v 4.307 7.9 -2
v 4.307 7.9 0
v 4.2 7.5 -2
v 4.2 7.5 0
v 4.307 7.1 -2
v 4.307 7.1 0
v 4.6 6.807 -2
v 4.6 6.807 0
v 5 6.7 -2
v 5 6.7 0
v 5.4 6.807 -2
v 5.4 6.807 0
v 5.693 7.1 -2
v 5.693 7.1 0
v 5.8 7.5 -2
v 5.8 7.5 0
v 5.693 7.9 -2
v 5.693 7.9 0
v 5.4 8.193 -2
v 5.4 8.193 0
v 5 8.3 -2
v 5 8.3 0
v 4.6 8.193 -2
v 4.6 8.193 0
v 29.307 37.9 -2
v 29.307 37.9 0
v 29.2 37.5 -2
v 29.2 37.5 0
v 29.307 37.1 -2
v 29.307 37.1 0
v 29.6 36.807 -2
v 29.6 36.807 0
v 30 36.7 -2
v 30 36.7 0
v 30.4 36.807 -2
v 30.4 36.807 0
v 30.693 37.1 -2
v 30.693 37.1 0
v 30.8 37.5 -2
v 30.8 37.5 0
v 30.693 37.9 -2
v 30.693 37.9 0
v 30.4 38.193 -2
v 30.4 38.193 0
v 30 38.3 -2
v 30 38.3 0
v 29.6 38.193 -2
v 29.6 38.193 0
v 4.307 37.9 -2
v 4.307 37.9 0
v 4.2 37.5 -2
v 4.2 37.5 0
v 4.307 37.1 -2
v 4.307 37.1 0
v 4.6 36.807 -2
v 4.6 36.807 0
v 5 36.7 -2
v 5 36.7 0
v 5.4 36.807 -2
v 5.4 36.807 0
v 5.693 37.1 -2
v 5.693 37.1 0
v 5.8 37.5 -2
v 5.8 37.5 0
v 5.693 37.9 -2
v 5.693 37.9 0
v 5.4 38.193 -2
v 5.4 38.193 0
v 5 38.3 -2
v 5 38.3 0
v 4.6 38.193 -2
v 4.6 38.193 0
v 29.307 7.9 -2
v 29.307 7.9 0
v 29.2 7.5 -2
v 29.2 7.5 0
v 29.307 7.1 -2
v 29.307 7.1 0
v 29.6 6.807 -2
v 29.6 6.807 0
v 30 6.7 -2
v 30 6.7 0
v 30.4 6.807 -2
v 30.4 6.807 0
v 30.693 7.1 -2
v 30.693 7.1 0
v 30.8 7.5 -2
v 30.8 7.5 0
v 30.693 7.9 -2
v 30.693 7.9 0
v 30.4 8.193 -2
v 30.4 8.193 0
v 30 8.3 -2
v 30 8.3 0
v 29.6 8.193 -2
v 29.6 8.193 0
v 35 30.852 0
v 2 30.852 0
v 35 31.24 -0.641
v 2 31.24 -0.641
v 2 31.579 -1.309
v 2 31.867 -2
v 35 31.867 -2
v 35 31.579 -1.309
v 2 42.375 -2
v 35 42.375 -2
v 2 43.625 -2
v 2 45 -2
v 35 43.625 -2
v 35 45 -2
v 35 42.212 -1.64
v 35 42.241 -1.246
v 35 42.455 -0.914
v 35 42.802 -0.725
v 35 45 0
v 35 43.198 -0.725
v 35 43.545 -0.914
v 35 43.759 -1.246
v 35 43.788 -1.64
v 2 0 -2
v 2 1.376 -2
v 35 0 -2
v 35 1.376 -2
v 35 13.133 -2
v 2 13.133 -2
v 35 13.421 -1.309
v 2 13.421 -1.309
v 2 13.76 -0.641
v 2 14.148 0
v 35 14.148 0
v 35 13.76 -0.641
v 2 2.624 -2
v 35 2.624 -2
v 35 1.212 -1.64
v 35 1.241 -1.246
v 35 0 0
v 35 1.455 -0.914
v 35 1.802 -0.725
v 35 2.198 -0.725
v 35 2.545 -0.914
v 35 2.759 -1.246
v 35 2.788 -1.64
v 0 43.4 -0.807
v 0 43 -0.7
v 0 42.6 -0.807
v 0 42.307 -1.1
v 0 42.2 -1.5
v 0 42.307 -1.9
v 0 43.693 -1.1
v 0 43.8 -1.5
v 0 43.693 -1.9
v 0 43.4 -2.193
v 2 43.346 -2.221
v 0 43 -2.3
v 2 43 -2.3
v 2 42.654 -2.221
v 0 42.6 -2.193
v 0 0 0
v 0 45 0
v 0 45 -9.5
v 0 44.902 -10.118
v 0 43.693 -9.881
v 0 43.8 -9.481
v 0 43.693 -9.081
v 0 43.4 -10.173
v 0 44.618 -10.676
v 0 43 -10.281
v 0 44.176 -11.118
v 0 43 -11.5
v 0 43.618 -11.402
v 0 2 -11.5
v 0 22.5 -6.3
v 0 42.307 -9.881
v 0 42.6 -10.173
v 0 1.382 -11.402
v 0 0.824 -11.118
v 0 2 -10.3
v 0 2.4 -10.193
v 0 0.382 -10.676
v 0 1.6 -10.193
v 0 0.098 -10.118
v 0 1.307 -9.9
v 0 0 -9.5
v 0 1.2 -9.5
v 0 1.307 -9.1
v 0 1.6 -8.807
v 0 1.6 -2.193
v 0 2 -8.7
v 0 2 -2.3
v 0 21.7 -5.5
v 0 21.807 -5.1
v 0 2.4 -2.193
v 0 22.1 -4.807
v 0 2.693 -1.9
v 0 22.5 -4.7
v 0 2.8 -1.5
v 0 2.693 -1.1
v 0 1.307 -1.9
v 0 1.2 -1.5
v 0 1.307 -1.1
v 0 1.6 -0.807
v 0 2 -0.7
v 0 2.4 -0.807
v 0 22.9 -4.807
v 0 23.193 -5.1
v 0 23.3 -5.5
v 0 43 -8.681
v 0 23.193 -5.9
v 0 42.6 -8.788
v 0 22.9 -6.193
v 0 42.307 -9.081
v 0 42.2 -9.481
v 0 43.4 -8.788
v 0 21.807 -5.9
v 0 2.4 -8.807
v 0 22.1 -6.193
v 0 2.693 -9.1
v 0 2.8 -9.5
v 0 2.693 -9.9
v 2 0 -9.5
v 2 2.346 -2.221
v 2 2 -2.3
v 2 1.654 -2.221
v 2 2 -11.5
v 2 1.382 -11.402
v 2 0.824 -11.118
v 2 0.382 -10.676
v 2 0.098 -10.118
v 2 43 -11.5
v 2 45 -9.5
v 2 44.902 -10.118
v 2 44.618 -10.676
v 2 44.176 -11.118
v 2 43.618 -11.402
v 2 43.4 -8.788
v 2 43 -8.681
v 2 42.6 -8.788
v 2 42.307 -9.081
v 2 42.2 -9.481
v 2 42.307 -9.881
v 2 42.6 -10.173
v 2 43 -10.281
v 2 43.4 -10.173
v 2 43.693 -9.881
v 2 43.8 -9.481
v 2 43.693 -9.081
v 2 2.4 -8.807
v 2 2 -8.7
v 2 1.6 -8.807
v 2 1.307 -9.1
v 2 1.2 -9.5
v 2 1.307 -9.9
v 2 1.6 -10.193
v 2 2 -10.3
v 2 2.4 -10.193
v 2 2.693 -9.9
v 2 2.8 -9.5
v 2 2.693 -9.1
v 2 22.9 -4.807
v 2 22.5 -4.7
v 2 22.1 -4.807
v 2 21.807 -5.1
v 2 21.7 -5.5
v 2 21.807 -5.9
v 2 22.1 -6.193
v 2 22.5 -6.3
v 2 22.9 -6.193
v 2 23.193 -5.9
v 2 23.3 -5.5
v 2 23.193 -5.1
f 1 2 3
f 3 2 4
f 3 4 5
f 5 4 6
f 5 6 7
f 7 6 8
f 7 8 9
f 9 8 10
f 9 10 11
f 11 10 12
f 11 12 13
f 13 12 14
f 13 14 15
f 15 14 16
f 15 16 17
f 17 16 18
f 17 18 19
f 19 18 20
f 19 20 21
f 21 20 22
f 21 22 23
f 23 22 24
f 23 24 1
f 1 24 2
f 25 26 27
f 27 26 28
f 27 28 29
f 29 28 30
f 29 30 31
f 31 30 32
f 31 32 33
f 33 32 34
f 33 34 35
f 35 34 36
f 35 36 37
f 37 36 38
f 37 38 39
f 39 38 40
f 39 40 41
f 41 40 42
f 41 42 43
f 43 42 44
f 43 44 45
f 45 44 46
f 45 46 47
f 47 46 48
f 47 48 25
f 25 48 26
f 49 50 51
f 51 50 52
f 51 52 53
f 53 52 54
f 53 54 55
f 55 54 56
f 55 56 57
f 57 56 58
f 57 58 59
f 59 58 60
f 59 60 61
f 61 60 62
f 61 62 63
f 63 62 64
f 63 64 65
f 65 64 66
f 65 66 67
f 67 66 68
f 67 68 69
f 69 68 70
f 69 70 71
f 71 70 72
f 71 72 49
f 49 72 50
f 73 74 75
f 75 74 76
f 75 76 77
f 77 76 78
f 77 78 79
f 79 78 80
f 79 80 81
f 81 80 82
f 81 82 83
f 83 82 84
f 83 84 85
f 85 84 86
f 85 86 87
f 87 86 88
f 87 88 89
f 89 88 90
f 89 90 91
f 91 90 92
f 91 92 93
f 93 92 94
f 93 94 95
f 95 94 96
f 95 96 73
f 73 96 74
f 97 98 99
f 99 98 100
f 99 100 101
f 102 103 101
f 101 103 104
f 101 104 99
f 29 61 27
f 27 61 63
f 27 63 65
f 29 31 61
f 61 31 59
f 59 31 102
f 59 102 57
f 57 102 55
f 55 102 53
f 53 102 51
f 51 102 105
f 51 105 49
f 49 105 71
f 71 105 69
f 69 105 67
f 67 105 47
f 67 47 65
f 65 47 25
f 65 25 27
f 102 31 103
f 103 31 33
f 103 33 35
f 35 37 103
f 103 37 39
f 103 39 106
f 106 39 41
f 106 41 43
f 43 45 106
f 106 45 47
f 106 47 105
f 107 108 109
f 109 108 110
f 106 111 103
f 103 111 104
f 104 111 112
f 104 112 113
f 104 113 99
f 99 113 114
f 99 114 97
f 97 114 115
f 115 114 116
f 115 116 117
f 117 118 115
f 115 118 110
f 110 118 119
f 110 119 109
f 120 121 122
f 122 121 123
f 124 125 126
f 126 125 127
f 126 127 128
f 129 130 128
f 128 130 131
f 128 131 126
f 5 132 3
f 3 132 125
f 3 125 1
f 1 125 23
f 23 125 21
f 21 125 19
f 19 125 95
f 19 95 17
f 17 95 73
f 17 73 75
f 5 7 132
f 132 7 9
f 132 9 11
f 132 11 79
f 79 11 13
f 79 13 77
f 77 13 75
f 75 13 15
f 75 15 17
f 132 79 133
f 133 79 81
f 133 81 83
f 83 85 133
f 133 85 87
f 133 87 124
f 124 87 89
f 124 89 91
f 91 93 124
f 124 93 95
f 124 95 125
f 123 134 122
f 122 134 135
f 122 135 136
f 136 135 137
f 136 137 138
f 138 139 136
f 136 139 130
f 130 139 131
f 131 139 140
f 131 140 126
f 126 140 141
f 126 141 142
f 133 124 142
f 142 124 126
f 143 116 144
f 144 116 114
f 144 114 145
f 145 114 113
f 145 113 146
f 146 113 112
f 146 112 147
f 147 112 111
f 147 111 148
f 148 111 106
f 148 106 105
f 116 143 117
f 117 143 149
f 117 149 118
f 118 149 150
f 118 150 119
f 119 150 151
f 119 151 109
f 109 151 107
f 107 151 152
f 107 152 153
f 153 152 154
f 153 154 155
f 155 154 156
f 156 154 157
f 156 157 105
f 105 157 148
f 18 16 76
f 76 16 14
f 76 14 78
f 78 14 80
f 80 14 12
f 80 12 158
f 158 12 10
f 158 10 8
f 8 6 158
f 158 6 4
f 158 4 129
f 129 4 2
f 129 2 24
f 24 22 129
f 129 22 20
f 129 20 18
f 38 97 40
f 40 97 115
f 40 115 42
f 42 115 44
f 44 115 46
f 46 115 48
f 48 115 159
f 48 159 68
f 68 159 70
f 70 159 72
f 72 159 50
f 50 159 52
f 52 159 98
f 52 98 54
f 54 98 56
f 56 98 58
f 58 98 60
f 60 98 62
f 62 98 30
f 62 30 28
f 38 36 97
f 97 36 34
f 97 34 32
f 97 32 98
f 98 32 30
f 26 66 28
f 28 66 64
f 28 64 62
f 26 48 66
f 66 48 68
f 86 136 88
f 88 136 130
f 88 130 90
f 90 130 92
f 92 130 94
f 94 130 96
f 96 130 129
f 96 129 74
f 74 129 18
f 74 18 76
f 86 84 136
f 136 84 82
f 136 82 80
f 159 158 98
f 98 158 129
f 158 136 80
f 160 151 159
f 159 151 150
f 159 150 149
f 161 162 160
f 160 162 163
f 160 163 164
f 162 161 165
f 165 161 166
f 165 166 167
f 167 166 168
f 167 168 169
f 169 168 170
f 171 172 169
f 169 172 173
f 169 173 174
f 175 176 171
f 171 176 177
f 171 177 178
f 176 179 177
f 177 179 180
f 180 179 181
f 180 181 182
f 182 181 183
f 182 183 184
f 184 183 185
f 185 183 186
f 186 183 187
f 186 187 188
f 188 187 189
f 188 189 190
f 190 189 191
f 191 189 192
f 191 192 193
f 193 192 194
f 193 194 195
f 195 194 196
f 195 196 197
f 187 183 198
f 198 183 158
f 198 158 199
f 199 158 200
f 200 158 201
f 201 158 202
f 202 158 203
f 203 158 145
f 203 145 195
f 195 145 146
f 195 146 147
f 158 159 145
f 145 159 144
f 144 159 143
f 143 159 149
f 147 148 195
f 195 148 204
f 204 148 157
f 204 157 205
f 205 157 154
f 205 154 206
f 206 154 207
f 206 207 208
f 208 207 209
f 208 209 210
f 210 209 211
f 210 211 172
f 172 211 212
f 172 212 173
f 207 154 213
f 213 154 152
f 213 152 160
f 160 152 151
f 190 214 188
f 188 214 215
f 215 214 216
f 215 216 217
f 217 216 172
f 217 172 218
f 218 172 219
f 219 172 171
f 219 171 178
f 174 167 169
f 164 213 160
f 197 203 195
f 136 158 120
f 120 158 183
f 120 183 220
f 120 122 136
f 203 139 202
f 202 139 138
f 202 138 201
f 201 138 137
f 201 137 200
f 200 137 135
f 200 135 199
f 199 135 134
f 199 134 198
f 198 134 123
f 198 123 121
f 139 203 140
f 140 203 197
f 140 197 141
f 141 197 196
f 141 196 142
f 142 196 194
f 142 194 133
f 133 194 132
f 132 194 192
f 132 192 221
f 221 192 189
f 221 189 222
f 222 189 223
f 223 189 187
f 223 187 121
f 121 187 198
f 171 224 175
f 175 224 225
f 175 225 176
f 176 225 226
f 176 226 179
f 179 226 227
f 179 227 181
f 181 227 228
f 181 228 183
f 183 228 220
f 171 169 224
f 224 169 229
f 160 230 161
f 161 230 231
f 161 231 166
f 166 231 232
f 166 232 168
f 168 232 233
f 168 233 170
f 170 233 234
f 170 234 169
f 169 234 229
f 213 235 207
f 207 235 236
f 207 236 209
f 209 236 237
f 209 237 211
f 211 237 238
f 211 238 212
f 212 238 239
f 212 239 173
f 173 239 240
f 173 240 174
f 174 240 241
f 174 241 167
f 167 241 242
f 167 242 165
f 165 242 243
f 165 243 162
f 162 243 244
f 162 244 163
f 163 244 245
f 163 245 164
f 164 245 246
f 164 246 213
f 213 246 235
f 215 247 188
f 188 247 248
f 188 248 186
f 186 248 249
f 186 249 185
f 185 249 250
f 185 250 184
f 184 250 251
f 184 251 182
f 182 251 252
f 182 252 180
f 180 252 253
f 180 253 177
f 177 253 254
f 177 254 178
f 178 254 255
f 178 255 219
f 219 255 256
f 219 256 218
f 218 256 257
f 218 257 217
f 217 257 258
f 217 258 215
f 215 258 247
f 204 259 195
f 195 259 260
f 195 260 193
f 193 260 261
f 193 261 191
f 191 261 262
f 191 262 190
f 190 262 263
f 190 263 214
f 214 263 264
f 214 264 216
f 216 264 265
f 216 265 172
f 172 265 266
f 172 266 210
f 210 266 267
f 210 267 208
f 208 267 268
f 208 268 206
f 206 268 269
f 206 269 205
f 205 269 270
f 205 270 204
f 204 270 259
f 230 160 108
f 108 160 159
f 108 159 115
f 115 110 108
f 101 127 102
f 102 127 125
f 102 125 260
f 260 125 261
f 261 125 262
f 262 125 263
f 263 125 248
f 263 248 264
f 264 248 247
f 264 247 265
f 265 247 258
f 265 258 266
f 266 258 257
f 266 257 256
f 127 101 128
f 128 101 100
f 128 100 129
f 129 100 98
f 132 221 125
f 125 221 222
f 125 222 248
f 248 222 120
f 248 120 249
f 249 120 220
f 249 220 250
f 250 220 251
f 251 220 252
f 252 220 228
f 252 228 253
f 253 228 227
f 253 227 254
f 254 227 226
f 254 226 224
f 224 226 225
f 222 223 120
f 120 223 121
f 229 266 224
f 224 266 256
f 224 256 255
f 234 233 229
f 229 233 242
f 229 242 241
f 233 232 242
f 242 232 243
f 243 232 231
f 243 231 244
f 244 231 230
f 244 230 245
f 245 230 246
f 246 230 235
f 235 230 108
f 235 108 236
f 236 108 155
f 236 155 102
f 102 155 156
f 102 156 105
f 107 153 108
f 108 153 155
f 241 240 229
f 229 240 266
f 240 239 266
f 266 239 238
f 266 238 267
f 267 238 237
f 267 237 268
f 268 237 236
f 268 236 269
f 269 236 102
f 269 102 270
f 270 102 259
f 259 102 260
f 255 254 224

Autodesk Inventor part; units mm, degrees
ref_plane "YZ Plane" through (0, 0, 0) normal (1, 0, 0) x (0, 1, 0)
ref_plane "XZ Plane" through (0, 0, 0) normal (0, 1, 0) x (-1, 0, 0)
ref_plane "XY Plane" through (0, 0, 0) normal (0, 0, 1) x (1, 0, 0)
sketch "スケッチ1" plane through (0, 0, 0) normal (1, 0, 0) x (0, 1, 0)
  line L0 (45, 0) -> (0, 0)
  line L1 (0, 0) -> (0, -11.5)
  line L2 (0, -11.5) -> (45, -11.5)
  line L3 (45, -11.5) -> (45, 0)
  dimension "d0" = 45
  dimension "d1" = 11.5
extrude "押し出し1" add sketch "スケッチ1" along normal blind 2
sketch "スケッチ2" plane through (2, 0, 0) normal (1, 0, 0) x (0, 0, -1)
  circle A0 centre (1.5, 43) radius 0.8 projected
  circle A1 centre (9.4807, 43) radius 0.8 projected
  circle A2 centre (9.5, 2) radius 0.8 projected
  circle A3 centre (1.5, 2) radius 0.8 projected
  circle A4 centre (5.5, 22.5) radius 0.8 projected
  point P0 (0, 0)
extrude "押し出し2" cut sketch "スケッチ2" against normal through all
fillet "フィレット1" radius 2 2 edges at (1, 45, -11.5) (1, 0, -11.5)
sketch "スケッチ3" plane through (0, 0, 0) normal (-1, 0, 0) x (0, 0, 1)
  circle A0 centre (-5.5, 22.5) radius 0.8 projected
  circle A1 centre (-5.5, 22.5) radius 10
  line L0 (-2, 45) -> (0, 45)
  line L1 (0, 45) -> (0, 0)
  line L2 (0, 0) -> (-2, 0)
  line L3 (-2, 0) -> (-2, 45)
  line L4 (-9.5, 45) -> (0, 45) projected
  line L5 (0, 0) -> (-9.5, 0) projected
  circle A2 centre (-5.5, 22.5) radius 0.8 projected
  arc A3 (-11.5, 2) -> (-9.5, 0) centre (-9.5, 2) ccw projected
  line L6 (0, 0) -> (-9.5, 0) projected
  line L7 (0, 45) -> (0, 0) projected
  line L8 (-9.5, 45) -> (0, 45) projected
  arc A4 (-9.5, 45) -> (-11.5, 43) centre (-9.5, 43) ccw projected
  line L9 (-11.5, 2) -> (-11.5, 43) projected
  circle A5 centre (-1.5, 43) radius 0.8 projected
  circle A6 centre (-1.5, 2) radius 0.8 projected
  point P0 (-2, 31.8675)
  point P1 (-2, 13.1325)
  point P2 (0, 14.1484)
  point P3 (0, 30.8516)
  point P4 (-11.5, 14.5)
  point P5 (-11.5, 30.5)
  point P6 (-2, 45)
  point P7 (-2, 43.6245)
  point P8 (-2, 42.3755)
  point P9 (-2, 2.6245)
  point P10 (-2, 1.3755)
  dimension "d7" = 20
  dimension "d34" = 2
extrude "押し出し3" add sketch "スケッチ3" against normal blind 35 contours A1 L3 A5 L0 L1 | L1 L2 L3 A6 A1
sketch "スケッチ6" plane through (0, 0, 0) normal (0, 0, 1) x (1, 0, 0)
  line L0 (5, 37.5) -> (30, 37.5) construction
  line L1 (30, 37.5) -> (30, 7.5) construction
  line L2 (30, 7.5) -> (5, 7.5) construction
  line L3 (5, 7.5) -> (5, 37.5) construction
  line L4 (0, 45) -> (35, 45) projected
  line L5 (0, 0) -> (35, 0) projected
  line L6 (35, 45) -> (35, 30.8516) projected
  line L7 (0, 45) -> (0, 0) projected
  circle A0 centre (5, 37.5) radius 0.8
  circle A1 centre (30, 37.5) radius 0.8
  circle A2 centre (5, 7.5) radius 0.8
  circle A3 centre (30, 7.5) radius 0.8
  dimension "d35" = 25
  dimension "d36" = 30
  dimension "d37" = 7.5
  dimension "d38" = 7.5
  dimension "d39" = 5
  dimension "d40" = 5
  dimension "d41" = 1.6
  dimension "d42" = 1.6
  dimension "d43" = 1.6
  dimension "d44" = 1.6
extrude "押し出し6" cut sketch "スケッチ6" against normal through all
equation "\"d37\" = d38"
equation "\"d39\" = d40"
properties part number "bluetooth_setter"
